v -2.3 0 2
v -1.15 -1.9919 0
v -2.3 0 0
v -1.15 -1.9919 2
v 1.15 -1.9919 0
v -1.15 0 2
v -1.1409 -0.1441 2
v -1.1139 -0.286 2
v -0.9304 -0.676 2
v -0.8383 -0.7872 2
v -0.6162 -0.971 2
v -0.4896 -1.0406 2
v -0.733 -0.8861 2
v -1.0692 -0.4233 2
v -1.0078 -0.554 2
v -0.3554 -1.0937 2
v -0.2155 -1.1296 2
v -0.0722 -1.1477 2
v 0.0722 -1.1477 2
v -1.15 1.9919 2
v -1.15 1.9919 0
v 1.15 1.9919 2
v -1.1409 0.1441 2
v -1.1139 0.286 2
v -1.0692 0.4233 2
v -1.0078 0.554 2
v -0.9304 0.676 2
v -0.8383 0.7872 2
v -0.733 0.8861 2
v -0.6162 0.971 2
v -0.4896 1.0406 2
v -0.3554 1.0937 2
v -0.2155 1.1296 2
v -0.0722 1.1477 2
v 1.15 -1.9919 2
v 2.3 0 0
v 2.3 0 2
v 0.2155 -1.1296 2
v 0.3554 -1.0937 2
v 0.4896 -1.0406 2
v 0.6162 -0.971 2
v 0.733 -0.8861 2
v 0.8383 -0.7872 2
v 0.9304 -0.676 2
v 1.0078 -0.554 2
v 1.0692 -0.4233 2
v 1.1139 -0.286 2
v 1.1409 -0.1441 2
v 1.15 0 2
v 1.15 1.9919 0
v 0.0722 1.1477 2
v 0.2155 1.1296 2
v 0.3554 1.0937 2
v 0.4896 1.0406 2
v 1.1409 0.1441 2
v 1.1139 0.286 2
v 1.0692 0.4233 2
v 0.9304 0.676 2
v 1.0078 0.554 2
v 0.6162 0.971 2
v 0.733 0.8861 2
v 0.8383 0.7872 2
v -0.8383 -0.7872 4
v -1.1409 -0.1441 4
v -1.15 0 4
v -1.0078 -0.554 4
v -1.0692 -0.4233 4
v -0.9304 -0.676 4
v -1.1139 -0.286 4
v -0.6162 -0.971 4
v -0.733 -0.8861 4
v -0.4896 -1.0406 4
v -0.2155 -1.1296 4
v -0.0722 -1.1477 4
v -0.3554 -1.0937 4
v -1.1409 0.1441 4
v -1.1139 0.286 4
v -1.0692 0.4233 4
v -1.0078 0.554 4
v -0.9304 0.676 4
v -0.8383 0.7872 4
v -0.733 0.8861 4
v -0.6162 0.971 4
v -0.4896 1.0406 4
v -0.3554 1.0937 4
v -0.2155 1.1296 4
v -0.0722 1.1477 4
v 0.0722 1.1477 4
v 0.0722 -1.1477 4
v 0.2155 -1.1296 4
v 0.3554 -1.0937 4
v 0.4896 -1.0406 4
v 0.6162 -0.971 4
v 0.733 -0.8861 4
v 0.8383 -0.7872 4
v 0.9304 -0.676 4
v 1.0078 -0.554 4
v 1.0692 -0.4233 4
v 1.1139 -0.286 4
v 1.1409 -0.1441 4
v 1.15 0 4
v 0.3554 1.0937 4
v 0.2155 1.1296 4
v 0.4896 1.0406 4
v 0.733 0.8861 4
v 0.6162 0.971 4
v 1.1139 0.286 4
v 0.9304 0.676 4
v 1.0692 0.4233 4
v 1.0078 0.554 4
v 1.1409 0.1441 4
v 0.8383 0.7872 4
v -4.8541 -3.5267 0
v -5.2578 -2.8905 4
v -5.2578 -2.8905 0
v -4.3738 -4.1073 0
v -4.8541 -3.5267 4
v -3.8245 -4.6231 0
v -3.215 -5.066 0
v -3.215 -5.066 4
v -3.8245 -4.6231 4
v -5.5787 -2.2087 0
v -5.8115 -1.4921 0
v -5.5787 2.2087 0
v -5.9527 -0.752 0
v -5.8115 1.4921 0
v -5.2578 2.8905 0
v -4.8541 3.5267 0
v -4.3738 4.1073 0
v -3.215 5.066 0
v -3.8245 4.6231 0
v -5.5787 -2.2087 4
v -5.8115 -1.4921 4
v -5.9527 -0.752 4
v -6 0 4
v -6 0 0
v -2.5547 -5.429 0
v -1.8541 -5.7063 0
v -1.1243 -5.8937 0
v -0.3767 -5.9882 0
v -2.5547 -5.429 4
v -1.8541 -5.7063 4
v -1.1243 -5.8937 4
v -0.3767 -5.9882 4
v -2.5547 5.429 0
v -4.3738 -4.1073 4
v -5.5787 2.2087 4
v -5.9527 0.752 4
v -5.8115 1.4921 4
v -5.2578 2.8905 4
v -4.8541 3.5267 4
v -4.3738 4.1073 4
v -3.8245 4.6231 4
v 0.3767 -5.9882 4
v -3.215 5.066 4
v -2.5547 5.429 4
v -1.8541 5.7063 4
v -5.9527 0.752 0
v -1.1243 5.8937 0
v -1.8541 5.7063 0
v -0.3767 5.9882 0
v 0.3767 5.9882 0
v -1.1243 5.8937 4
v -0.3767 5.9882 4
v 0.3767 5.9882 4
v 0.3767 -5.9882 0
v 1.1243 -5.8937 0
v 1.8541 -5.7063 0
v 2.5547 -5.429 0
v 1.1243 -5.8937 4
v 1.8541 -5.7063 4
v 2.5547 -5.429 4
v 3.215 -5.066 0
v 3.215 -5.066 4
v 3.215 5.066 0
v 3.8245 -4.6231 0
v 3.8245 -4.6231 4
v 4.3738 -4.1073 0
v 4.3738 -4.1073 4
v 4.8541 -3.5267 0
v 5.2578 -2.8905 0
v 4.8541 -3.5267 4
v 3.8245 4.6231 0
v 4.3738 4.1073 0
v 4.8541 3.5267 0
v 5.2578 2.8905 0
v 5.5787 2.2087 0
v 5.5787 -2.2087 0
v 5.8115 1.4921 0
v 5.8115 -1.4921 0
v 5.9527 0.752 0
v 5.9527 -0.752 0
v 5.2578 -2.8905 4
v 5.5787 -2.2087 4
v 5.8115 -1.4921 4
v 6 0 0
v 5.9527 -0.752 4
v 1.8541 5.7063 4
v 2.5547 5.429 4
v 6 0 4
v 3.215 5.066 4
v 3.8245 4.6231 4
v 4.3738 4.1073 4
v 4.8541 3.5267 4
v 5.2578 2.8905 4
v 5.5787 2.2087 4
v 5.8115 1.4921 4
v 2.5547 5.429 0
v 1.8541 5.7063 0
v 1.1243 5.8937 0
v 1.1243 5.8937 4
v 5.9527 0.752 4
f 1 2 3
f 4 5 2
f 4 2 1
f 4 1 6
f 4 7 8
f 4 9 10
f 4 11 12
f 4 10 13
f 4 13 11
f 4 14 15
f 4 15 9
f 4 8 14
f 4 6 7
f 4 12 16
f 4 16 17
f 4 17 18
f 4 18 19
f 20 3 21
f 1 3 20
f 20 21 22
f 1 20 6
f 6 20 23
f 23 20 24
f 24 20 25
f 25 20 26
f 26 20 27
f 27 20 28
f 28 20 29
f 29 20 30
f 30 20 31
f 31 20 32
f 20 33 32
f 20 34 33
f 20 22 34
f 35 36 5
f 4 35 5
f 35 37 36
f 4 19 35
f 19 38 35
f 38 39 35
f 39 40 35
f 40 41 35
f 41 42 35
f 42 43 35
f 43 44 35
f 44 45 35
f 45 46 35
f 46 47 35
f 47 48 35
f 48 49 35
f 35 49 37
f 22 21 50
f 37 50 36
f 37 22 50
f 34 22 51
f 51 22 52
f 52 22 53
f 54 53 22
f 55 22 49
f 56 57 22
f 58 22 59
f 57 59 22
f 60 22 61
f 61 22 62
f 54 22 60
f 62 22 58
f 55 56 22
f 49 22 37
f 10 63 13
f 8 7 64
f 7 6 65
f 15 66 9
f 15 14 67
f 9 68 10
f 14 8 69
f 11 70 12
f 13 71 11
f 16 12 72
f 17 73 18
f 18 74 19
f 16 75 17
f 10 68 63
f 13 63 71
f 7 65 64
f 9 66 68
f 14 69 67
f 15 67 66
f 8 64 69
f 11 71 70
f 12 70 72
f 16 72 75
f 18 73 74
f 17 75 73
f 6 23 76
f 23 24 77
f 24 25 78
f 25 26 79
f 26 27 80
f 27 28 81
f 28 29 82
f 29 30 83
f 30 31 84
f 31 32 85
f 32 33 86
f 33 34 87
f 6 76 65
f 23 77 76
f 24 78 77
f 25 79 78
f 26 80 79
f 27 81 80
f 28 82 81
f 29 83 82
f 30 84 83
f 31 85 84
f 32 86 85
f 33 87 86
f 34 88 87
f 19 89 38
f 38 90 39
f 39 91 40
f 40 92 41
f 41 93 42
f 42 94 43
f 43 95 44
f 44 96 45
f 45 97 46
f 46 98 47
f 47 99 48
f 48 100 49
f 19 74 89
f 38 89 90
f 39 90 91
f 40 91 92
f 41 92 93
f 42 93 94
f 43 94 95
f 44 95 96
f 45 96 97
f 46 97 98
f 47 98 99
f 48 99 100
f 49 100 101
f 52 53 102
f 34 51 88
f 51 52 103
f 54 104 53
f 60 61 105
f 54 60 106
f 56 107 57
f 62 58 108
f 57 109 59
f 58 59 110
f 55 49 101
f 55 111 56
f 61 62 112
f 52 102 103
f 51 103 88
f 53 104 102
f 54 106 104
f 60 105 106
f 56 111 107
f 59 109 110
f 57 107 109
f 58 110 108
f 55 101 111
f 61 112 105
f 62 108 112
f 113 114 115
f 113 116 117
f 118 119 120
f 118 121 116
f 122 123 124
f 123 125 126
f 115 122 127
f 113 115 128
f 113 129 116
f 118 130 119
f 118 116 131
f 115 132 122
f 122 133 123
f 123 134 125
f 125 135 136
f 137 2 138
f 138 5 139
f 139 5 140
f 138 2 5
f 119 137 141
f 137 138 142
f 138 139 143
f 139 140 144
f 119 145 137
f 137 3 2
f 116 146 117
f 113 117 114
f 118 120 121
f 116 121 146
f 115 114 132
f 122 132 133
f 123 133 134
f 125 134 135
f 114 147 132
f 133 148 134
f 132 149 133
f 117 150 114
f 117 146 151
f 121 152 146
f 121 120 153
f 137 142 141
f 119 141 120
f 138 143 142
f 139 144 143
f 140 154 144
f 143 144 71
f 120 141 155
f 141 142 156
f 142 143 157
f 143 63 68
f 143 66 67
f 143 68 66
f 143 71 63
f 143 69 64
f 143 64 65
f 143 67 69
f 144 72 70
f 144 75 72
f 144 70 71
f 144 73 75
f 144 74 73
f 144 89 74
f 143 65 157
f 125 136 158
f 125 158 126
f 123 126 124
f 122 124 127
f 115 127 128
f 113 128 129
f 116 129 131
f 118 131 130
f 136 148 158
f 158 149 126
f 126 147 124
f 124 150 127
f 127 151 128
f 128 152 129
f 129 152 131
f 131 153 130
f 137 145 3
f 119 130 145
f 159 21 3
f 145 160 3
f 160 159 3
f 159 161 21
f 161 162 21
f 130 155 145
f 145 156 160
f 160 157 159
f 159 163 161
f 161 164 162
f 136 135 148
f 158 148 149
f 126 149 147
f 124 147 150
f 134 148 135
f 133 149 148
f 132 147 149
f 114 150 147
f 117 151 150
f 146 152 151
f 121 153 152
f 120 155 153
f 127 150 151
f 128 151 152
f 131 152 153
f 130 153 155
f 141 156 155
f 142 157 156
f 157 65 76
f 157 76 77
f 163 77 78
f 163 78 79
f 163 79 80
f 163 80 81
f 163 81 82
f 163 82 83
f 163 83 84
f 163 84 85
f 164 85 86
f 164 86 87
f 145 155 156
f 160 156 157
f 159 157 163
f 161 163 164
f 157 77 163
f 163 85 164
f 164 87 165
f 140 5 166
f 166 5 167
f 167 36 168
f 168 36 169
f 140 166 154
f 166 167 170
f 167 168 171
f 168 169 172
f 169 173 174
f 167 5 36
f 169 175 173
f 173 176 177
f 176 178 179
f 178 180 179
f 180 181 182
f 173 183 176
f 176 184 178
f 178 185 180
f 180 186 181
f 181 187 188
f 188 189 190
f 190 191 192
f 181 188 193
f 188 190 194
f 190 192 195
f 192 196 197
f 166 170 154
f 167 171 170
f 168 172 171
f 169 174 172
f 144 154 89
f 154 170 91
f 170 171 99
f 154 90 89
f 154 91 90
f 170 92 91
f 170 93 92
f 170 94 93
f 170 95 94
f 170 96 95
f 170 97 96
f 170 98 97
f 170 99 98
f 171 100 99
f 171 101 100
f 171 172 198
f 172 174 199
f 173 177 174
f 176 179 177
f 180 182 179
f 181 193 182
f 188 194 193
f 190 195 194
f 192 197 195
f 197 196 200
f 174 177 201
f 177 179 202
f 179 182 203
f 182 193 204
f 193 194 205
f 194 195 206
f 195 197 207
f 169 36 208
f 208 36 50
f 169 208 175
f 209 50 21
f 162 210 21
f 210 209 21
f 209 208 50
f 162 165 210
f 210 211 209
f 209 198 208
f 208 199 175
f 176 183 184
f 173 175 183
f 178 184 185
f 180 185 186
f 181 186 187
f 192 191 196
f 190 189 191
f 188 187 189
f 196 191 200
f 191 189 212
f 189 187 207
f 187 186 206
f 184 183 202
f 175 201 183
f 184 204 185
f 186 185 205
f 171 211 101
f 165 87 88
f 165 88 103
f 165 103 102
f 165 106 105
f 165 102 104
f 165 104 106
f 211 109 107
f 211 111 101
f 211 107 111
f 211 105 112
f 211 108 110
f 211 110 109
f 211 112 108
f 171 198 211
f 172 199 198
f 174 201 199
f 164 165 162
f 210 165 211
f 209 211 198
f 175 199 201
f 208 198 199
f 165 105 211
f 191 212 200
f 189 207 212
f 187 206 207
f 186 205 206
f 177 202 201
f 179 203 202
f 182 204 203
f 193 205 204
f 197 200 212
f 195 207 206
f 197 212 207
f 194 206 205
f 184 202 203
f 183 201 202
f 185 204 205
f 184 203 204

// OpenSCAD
// file: ../planelib/motor.scad
yoff=10+2;
xoff=5;//10+17;
xlen=200;

module wingBoom( bd=8, diff=0.1, len=500 )
{
    translate([xoff,yoff,zBoom])
    translate([ -200,0,0]) rotate([0,90,0])cylinder(d=bd+diff,h=len,center=true);  //8mm version
}



module wingMotorPlate( diff=0, holes=true )
{
    h0=12;
    module mcylinder( diff=0 )
    {
        rotate([0,-90,0]) 
            translate([ 0,0,-3-diff ]) 
                cylinder(d=33+diff, h=55+diff,center=false);   // body cylinder
    }
    
    module mholes()
    {
        rotate([0,-90,0]) 
            ScrewMotorPlate(screwlen=60);
    }
    
    module cable_hole()
    {
        translate( [ -3, 15, 0 ] )
        rotate([90,0,0])
        hull(){
            translate([-10,0,0]) cylinder(d=5,h=10,center=true );
            translate([0,-2,0]) cylinder(d=4,h=10,center=true );
            translate([0,+2,0]) cylinder(d=4,h=10,center=true );
        }
    }

    difference(){
        union()
        {
            translate([xoff,yoff,zBoom])
                difference(){
                    mcylinder(0+2*diff);
                    if( holes==true ){
                        mcylinder(-4-2*diff);
                        mholes();
                        cable_hole();
                    }
                }
            translate([xoff,yoff,zBoom])
                intersection(){
                    mcylinder(0);
                    translate([-tubeOffset1-xoff ,tubeOffsety-yoff, 0]) 
                        cylinder(d=dBar1+8, h=33,center=true ); // bar mount
                    }
        }
        union()
        {
            if( holes==true ){
                translate([-tubeOffset1 ,tubeOffsety, zBoom]) 
                            cube([dBar1+10,dBar1+10,12+0.2], center=true );
                translate([ xoff-120/2-tubeOffset1, yoff, zBoom]) 
                    rotate([0,90,0])
                        cylinder(d=8+0.3+4+0.5,h=140,center=true);  // mount for boom 8mm version
                            
                wingPolyLine( d=dPoly, pt=ptWingNose, off=[+2,+0.5] );
                wingElectric();
                xTube( diameter=8+0.1, length=1000, tubeoffset=tubeOffset1 );
                translate( [-xoff+0, yoff-11.2, zBoom ] ) 
                    rotate([90,0,0])
                        ScrewAndHexNut( m=2,dist=10 );
                }
            
        }
    }


}

module wingMotor(diff=0, holes=true) //use diff!!!!!
{
    h0=12; //10;    
    {
        difference(){
            union(){
                Slice(){
                    wingSolid(r=-1/*diff*/);
                    translate([ xoff-130/2-3-10, yoff-15+1, zBoom]) cube([150,25+2,h0], center=true );
                    }
                
                translate([-tubeOffset1 ,tubeOffsety, zBoom]) cylinder(d=dBar1+10, h=h0,center=true );
                translate([-tubeOffset2 ,tubeOffsety, zBoom]) cylinder(d=dBar2+10, h=h0,center=true );
                
                translate([ xoff-120/2-tubeOffset1, yoff, zBoom]) rotate([0,90,0])cylinder(d=8+4,h=120,center=true);  //8mm version
                
                }
            union(){
                translate([xoff-153,yoff-21,zBoom])
                    rotate([0,0,-45])
                        cube([20,20,20], center=true );

                if( holes==true ){
                    color("Black") wingBoom();
                    color("Black") xTube( diameter=8+0.2, length=1000, tubeoffset=tubeOffset1 );
                    color("Black") xTube( diameter=6+0.2, length=400, tubeoffset=tubeOffset2 );   
                    wingMotorPlate(diff=0.1); 
                    wingPolyLine( d=dPoly, pt=ptWingNose, off=[+2,+0.5] );
                    *wingPolyLine( d=dPoly, pt=ptQRuder, off=[+0,+0] );
                    wingElectric();
                    translate( [-xoff+0, yoff-11.2, zBoom ] ) 
                        rotate([90,0,0])
                            ScrewAndHexNut( m=2,dist=10 );
                    translate([xoff,yoff,zBoom])
                        translate([-83,-8,0]) rcube([54,4,20], round=3);
                    translate([xoff-35,yoff-15,zBoom]){
                        translate([-113,2,0]) cube([30,20,1.2], center=true );
                        translate([-113,8,0]) ScrewAndHexNut( m=2,dist=8 );
                        }
                        
                    }
                }
        }
       
    }
    
    *translate([xoff,yoff,zBoom]){
        color("Red") translate([15+12,0,0]) rotate([0,90,0]) cylinder(d=7*25.4,h=8,center=true);   // propeller     
        color("Red") translate([12,0,0]) rotate([0,90,0]) cylinder(d=33,h=17,center=true);   // motor
        *%translate([0,-60,0]) cube( [300,1,500], center=true );
        }
    *color("Black") xTube( diameter=8, length=1000, tubeoffset=tubeOffset1 );
    *color("Black") xTube( diameter=6, length=400, tubeoffset=tubeOffset2 );    
    *wingMotorPlate(diff=0);

}

module wingMotorCoverSolid()
{
    diff=0;
	l=65-0.5+tubeOffset1-30;
    hull(){
        translate([xoff-55,yoff,zBoom]) // body cylinder taken from wingMotorPlate()
            rotate([0,-90,0]) 
                translate([ 0,0,-3-diff ]) 
                    cylinder(d=33+diff, h=1,center=false);   
        translate([ xoff-120+0.5-tubeOffset1, yoff, zBoom]) 
			rotate([0,90,0])
				cylinder(d=8+4+2,h=1,center=true);  // taken from wingMotor
		translate([xoff-tubeOffset1-l/2-25,yoff-5,zBoom])
			cube([l,1,45], center=true);	// hack to allow 3d printing
        }
}

module fuseMotor(d=0.5, holes=true) // not needed with two motors at the wings
{
// 19mm Löcher, Motokreuz: Balken mit 2 Schrauben, Gegenstück in den Rumpf kleben....
    translate([9.5,0,0])
    difference()
    {
        union()
        {
            translate([-280,0,0]){   // cutout inner Motormount
                rotate([0,90,0]) cylinder( d=30-d, h = 3 ); // h=5 was too fat, because it is solid
                }
            translate([-282,0,0]){   // cutout outer Motormount
                rotate([0,90,0]) cylinder( d=35-d, h=3 );
                }
            translate([-282,0,0]){   // cutout outer Motormount
                rotate([0,90,0]) resize([50,20,3])cylinder( d=35-d, h=3 );
                }
            translate([-260,0,+20]) 
                    rotate([0,-90,0]) 
                        cylinder( d=3.8, h=30 );   
            translate([-260,0,-20]) 
                    rotate([0,-90,0]) 
                        cylinder( d=3.8, h=30 );  
            if( !holes ){
            translate([-250+6,0,-20]) 
                    rotate([0,-90,0]) 
                        cylinder( d=6.5, h=30,$fn=6 );   
            translate([-250+6,0,+20]) 
                    rotate([0,-90,0]) 
                        cylinder( d=6.5, h=30,$fn=6 );   
                }
            
        }
        if(holes)
        union()
        {
            translate([-270,0,0]) 
                    rotate([0,-90,0]) 
                        cylinder( d=9, h=40 );   
            translate([-270,0,0])
                rotate([0,-90,0])
                    for( rot=[0:90:360] )
                        rotate([0,0,rot+45])
                            translate([0,19/2,0])
                                    cylinder( d=3.8, h=40 );
            translate([-260,0,+20]) 
                    rotate([0,-90,0]) 
                        cylinder( d=3.8, h=30 );   
            translate([-260,0,-20]) 
                    rotate([0,-90,0]) 
                        cylinder( d=3.8, h=30 );   
        }
    }
}
// file: ../planelib/ruder2.scad
// Ruder new version, test with small cut, printable?

*cutterObjectAll( ptStart=[0,0,0], dStart=20, ptStop=[-20,0,100], dStop=10, dSpace=1.0 );
*cutterMask( ptStart=[0,0,0], dStart=20+2*1, ptStop=[-20,0,100], dStop=10+2*1 );

function RuderGetSize( z, zStart, zStop, sStart, sStop ) = ( ( sStart + (sStop-sStart)/(zStop-zStart)*(z-zStart) ) );
function RuderGetHeight( z, zStart, zStop, sStart, sStop, hBase ) = ( RuderGetSize( z, zStart, zStop, sStart, sStop) * hBase );
function RuderGetPoint( z, zStart, zStop, sStart, sStop, ptBase ) = ( RuderGetSize( z, zStart, zStop, sStart, sStop) * ptBase );
function RuderGetXOffset( z, zStart, zStop, oStart, oStop ) = ( ( oStart + (oStop-oStart)/(zStop-zStart)*(z-zStart) ) );

module Ruder2( ptStart=[0,0,0], dStart=20, ptStop=[0,0,100], dStop=10, dSpace=1.0, rot=45, steps=5 )
{
    difference(){
        children();
        cutterObjectAll(  ptStart, dStart, ptStop, dStop, dSpace, rot, steps );
        cutterInnerAxis( ptStart, ptStop );
        cutterEnds( ptStart, dStart, dSpace, axis=false );
        cutterEnds( ptStop, dStop, dSpace, axis=false );
        }
}

module cutterObjectAll( ptStart, dStart, ptStop, dStop, dSpace, rot=45, steps=5 )
{
    ptDelta = (ptStop - ptStart) / steps; 
    dDelta = (dStop - dStart) / steps; 
    
    for( i=[0:steps-1] )
    {
        dir = ((i%2)==0);
        cutterObjectSingle(  
            ptStart+i*ptDelta, dStart+i*dDelta, 
            ptStart+(i+1)*ptDelta, dStart+(i+1)*dDelta, 
            dSpace, dir, steps );
    }
}

module cutterObjectSingle( ptStart, dStart, ptStop, dStop, dSpace, dir=false, rot=45 )
{
    difference()
    {
        union()
        {
            cutterCylinder( ptStart, dStart+2*dSpace, ptStop, dStop+2*dSpace );
            if( dir == true )
            {
                cutterMask( ptStart, dStart+2*dSpace, ptStop, dStop+2*dSpace, dir, rot=+rot );
                cutterMask( ptStart, dStart+2*dSpace, ptStop, dStop+2*dSpace, dir, rot=-rot );
            }
            cutterSpacer( ptStart, dStart+2*dSpace, dSpace );
            cutterSpacer( ptStop, dStop+2*dSpace, dSpace ); // this partly dublicate
        }
        union()
        {
            cutterCylinder( ptStart, dStart, ptStop, dStop );
            cutterHalf( ptStart, dStart, ptStop, dStop, dir );
        }
    }
}

module cutterCylinder( ptStart, dStart, ptStop, dStop )
{
    hull()
    {
        translate( ptStart ) cylinder( d=dStart, h=0.001, center=true );
        translate( ptStop )  cylinder( d=dStop, h=0.001, center=true  );
    }
}

module cutterMask( ptStart, dStart, ptStop, dStop, dir=true, rot=40 )
{
    oxStart = dir ? 0 : -dStart;
    oxStop = dir ? 0 : -dStop;
    
    hull(){
        translate( ptStart ) 
            rotate( [0,0,rot] )
                translate( [oxStart,-dStart/2,0] )
                    cube([dStart/2,dStart, 0.001], center=false );
        translate( ptStop ) 
            rotate( [0,0,rot] )
                translate( [oxStop,-dStop/2,0] )
                    cube([dStop/2,dStop, 0.001], center=false );
        }
}

module cutterHalf( ptStart, dStart, ptStop, dStop, dir=true )
{
    oxStart = dir ? 0 : -dStart;
    oxStop = dir ? 0 : -dStop;
    hull(){
        translate( ptStart ) 
                translate( [oxStart,-dStart,0] )
                    cube([dStart,2*dStart, 0.001], center=false );
        translate( ptStop ) 
                translate( [oxStop,-dStop,0] )
                    cube([dStop,2*dStop, 0.001], center=false );
        }
}

module cutterSpacer( ptStart, dStart, dSpace )
{
    translate( ptStart )
        cylinder( d=dStart, h=dSpace, center=true );
}

module cutterInnerAxis( ptStart, ptStop, dAxis=2.2 )    // set the correct parameter dAxis
{
    hull()
    {
        translate( ptStart ) sphere( d=dAxis );
        translate( ptStop ) sphere( d=dAxis );
    }
}

module cutterEnds( pt, d, dSpace, axis=false )
{
    translate( pt ) 
        difference()
        {
            union()
            {
                cylinder( d=d+2*dSpace, h=dSpace, center=true );
                translate( [-100,-20,-dSpace/2] ) cube( [100,40,dSpace], center=false );
            }
            if ( axis==false ) cylinder( d=d+2*dSpace, h=dSpace, center=true );
        }
}
// file: ../planelib/screw.scad
// screw and nut helper


//ScrewAndHexNut( m=2, $fn=50 );

module ScrewAndHexNut( m=2, dist=10 )
{
    
    dscrew  = (m==2) ? 2.3 : ((m==3) ? 3.2 : 4.1 );   // screw, loose
    dnut    = (m==2) ? 4.6 : ((m==3) ? 6.2 : 8.0 );   // hex nut, measured
    dhead   = (m==2) ? 4.2 : ((m==3) ? 5.8 : 7.0 );   //hex head
    
    translate( [ 0, 0, -dist/2-10/2 ] ) 
        cylinder(d=4.6, h=10, center=true, $fn=6 ); //m2 nut, 6 edge hole
    translate( [ 0, 0, 0 ] ) 
        cylinder(d=2.3, h=dist+20, center=true ); //m2 screw
    translate( [ 0, 0, +dist/2+10/2 ] ) 
        cylinder(d=4.2, h=10, center=true ); //m2 head
}

module ScrewServo( dist=10 )
{
    cylinder(d=1.5, h=dist ); // servo screw, does not realy fit
}

module ScrewMotorPlate( dscrew=3.5, distmin=15.5, distmax=19.5, dcenter=8, rotoffset=0, screwlen=6, plate=6 )
{
    for( a=[45:90:360]) 
        rotate([0,0,a+rotoffset]) 
            hull(){
                translate( [0, distmax/2, -plate-0.1] ) // max plate is fixed 6
                    cylinder( d=dscrew, h=screwlen, center=false ); // motor screws
                translate( [0, distmin/2, -plate-0.1] ) 
                    cylinder( d=dscrew, h=screwlen, center=false ); // motor screws
                }
    translate( [0, 0, -plate-0.1] ) 
        cylinder( d=dcenter, h=plate+1, center=false ); // motor center

}
// file: ../planelib/servo.scad
servo_size_1 = [25.5,12,37];  // mg90s
servo_size_2 = [33.5,12,3];

*servo_sg90($fn=50);
*ServoDiff();

module servo_sg90_arm( center=[0-5,0+1.5,3.5+3.5+12-2], rot=55 ) // mod during HR work: arm is not x centered in servo -5mm, arm touch cutout z-2, cutout too deep y+1.5, default rot 65->55
{
	l=20+2;
	a=7;
	translate(v = center)
	{ 
		hull()
		for( r=[-rot:5:+rot])
		{
			rotate( [0,0,r+180])
			translate([0,a/2-l/2,0])
				cube( [a,l,a], center=true );
		}
	}
}
    

module servo_sg90( yadd=0 )
{
		cube( servo_size_1 + [0,yadd,0], center=true );
        translate([0, 0, 3.5]) 
            cube( servo_size_2 + [0,yadd,0], center=true );
		servo_sg90_arm( );
}


module ServoDiff( pos=[-100, 7, 348], rot=[0,0,0], yadd=0 )
{ 
    translate( pos)
            rotate(rot)
                servo_sg90( yadd );
}
// file: ../planelib/polyline.scad
module wingPolyLine( d=3, pt=[0,0], off=[0,0]  )
{
    poly = [ for( z=[-20,zTip+20] ) [ o(z).x - s(z)*pt.x - off.x , o(z).y + s(z)*pt.y + off.y, z ] ];   
    #for( i=[0:(len(poly)-2)] ){
        hull(){
            translate(poly[i]) 
                sphere( d=d );
            translate(poly[i+1]) 
                sphere( d=d );
            }
        }
}

module fusePolyLine( d=3, size=605, off=[0,0], p=pClarkFusePolyUp )
{
    for( i=[0:(len(p)-2)] ){
        hull(){
            translate([p[i].x*size, p[i].y*size+off.y, +off.x]) 
                sphere( d=d );
            translate([p[i+1].x*size, p[i+1].y*size+off.y, +off.x]) 
                sphere( d=d );
            }
        *echo( p[i] );
        }
}

module fusePolyLineQ( d=3, size=605, pt=[0,0], off=[0,0] )
{
    poly = [        
                    [o(zBoom).x - s(zBoom)*pt.x - off.x , o(zBoom).y + s(zBoom)*pt.y + off.y,  +o(zBoom).z ],
                    [o(zBase).x - s(zBase)*pt.x - off.x , o(zBase).y + s(zBase)*pt.y + off.y,  +o(zBase).z ],
                    [o(zBase).x - s(zBase)*pt.x - off.x , o(zBase).y + s(zBase)*pt.y + off.y,  -o(zBase).z ], 
                    [o(zBoom).x - s(zBoom)*pt.x - off.x , o(zBoom).y + s(zBoom)*pt.y + off.y,  -o(zBoom).z ]
                    ];
                    
        for( i=[0:(len(poly)-2)] ){
                hull(){
                    translate(poly[i]) 
                        sphere( d=d );
                    translate(poly[i+1]) 
                        sphere( d=d );
                    }
        }
}

module offsetPolyLine(  d=3, size=605, off=10, p=pClarkY )  // this does not yet work, just a test.
{
    for( i=[0:(len(p)-1)] ){
        po = size * p[i];
        pv = size * ((i>0) ? p[i-1] : p[len(p)-1]);
        pn = size * ((i>(len(p)-2)) ? p[0] : p[i+1]);

        pop = (pv + pn)/2 + po;
        p02 = pn - po;
        z = p02.x * pop.y + p02.y * pop.x;
        
        pt = sign( z ) * pop * (off/norm(pop));
       

        
        hull(){
            translate([po.x+pt.x, po.y+pt.y, 0]) 
                sphere( d=d );
            translate([pn.x+pt.x, pn.y+pt.y, 0]) 
                sphere( d=d );
            }
        echo( po, pop, z );
    }
}
// file: ../planelib/wing.scad
module segment( s, o, r=0, p=pSD6060 )
{
    factor = ( s[1] ) / ( s[0] );
    height = ( o[1].z - o[0].z );
    sx = ( o[1].x - o[0].x ) / height;
    sy = ( o[1].y - o[0].y ) / height;
    
    m=[ [ 1, 0,  sx, 0],
        [ 0, 1,  sy, 0],
        [ 0, 0,  1,  0],
        [ 0, 0,  0,  1] ];
    
    translate(o[0])
        multmatrix(m)
            linear_extrude( height=height, scale=factor, convexity=10 ) 
                spant2d( s=s[0], r=r, p=p );
}


module spant3d( d=0.3, offset=[0,0,0], size=100, r=0, p=pSD6060 )
{
    translate(offset) linear_extrude( d, convexity=10 ) spant2d(size,r,p);
}

module spant3dDiff( d=0.3, offset=[0,0,0], size=100, rot=[0,0,0], ra=0, ri=-2.5, p=pSD6060 )
{
    translate(offset) rotate(rot) translate([0,0,-d/2]) linear_extrude( height=d, convexity=10 )
    difference()
    {
        spant2d( s=size, r=ra, p=p );
        spant2d( s=size, r=ri, p=p );
    }
}

module spant2d(s=1, r=0, p=pSD6060 )
{
    offset(delta=r)
    //alternative: offset(r=r)
    scale(s)
    mirror([1,0])  // sollte das weg?
    polygon(p);
}
// file: ../planelib/skin.scad
module outerSkin( d=1, h=0, center=true )
{
    hgt = (h<=0) ? h : 2*d;
    difference(){
        minkowski(){
            children();
            cylinder(r=d,h=hgt,center=center ); 
        }
        children();
    }
}

module outerSkin2( d=1, h=0, center=true )
{
    hgt = (h<=0) ? h : 2*d;
    difference(){
        minkowski(){
            children(0);
            cylinder(r=d,h=hgt,center=center ); 
        }
        children(1);
    }
}

module innerSkin( )
{
    difference(){
        children(0);
        children(1);    
        }
}

module skin2()
{
    difference()
    {
        minkowski()
        {
            children(0);
            children(1);    
        }
        children(0);
    }
}

module Slice( )
{
    intersection()
    {
        children(0);
        children(1);
    }
}

module gridSlice( dy=30, angy=30, grid=2, dim=1000 )
{
    Slice(){
        children();
        for(z=[-dim:dy:dim], angy=[-angy,+angy])  
            translate([0,0,z])  
                rotate([0,angy,0])
                    cube([dim,dim,grid], center=true );
    }

}

module linearSlice( sh=100, sx=100, org=[0,0,0], rot=[0,0,0], center=true )
{
    Slice()
    {
        children();
        translate( org + [0,0,+sh/2] )
            rotate( rot )
                cube( [4*sx,2*sx,sh], center=center );
    }
}

module radialSlice( sh=100, sx=100, org=[0,0,0], rot=[0,0,0], mode=0, center=true )
{
    Steps = 120;
    Slice()
    {
        children();
        translate( org + [0,0,0] )
            rotate( rot )
                radialSliceHelper( d=2*sx, sh=sh, mode, center );
    }
}

module radialSliceHelper( d, sh, mode=0, center=true )
{
    gap = 0.5;
    
    if( mode==0 ){
        cylinder( d=d, h=sh, center=center );
        }
            
    if( mode==1 ){
        difference(){
            union(){
                cylinder( d=d, h=sh, center=center );
                for( r=[0:120:360] )
                    translate([0,0,0]) rotate([0,90,r]) cylinder( d=10, h=d, center=center );
                }
            union(){
                for( r=[0:120:360] )
                    translate([0,0,sh]) rotate([0,90,r]) cylinder( d=10+0.2, h=d, center=center );
                }
            }
        }
 //hier war der marker..       
    if( mode==2 ){
        cx=5;
        cy=d/10;
        difference(){
            union(){
                cylinder( d=d, h=sh, center=center );
                for( r=[0:90:360] )
                    translate([0,0,0]) rotate([0,90,r]) cube([cx,cy,d],center=false); // d is diameter, cx,cy is size
                }
            union(){
                for( r=[0:90:360] )
                    translate([0,0,sh]) 
                        rotate([0,90,r]) 
                            translate([-gap,-gap/2,0])
                                cube([cx+gap*2,cy+gap,d],center=false);
                }
            }
        }
}

module show( d = [10,10,10] )
{
    for( i=[0:$children-1] )
    {
    translate( i * d )
        children(i);
    }
}
// main file
include <../planelib/inspectoer.scad>

fuseCoverHookBase2( a=10, ha=0.3 );
